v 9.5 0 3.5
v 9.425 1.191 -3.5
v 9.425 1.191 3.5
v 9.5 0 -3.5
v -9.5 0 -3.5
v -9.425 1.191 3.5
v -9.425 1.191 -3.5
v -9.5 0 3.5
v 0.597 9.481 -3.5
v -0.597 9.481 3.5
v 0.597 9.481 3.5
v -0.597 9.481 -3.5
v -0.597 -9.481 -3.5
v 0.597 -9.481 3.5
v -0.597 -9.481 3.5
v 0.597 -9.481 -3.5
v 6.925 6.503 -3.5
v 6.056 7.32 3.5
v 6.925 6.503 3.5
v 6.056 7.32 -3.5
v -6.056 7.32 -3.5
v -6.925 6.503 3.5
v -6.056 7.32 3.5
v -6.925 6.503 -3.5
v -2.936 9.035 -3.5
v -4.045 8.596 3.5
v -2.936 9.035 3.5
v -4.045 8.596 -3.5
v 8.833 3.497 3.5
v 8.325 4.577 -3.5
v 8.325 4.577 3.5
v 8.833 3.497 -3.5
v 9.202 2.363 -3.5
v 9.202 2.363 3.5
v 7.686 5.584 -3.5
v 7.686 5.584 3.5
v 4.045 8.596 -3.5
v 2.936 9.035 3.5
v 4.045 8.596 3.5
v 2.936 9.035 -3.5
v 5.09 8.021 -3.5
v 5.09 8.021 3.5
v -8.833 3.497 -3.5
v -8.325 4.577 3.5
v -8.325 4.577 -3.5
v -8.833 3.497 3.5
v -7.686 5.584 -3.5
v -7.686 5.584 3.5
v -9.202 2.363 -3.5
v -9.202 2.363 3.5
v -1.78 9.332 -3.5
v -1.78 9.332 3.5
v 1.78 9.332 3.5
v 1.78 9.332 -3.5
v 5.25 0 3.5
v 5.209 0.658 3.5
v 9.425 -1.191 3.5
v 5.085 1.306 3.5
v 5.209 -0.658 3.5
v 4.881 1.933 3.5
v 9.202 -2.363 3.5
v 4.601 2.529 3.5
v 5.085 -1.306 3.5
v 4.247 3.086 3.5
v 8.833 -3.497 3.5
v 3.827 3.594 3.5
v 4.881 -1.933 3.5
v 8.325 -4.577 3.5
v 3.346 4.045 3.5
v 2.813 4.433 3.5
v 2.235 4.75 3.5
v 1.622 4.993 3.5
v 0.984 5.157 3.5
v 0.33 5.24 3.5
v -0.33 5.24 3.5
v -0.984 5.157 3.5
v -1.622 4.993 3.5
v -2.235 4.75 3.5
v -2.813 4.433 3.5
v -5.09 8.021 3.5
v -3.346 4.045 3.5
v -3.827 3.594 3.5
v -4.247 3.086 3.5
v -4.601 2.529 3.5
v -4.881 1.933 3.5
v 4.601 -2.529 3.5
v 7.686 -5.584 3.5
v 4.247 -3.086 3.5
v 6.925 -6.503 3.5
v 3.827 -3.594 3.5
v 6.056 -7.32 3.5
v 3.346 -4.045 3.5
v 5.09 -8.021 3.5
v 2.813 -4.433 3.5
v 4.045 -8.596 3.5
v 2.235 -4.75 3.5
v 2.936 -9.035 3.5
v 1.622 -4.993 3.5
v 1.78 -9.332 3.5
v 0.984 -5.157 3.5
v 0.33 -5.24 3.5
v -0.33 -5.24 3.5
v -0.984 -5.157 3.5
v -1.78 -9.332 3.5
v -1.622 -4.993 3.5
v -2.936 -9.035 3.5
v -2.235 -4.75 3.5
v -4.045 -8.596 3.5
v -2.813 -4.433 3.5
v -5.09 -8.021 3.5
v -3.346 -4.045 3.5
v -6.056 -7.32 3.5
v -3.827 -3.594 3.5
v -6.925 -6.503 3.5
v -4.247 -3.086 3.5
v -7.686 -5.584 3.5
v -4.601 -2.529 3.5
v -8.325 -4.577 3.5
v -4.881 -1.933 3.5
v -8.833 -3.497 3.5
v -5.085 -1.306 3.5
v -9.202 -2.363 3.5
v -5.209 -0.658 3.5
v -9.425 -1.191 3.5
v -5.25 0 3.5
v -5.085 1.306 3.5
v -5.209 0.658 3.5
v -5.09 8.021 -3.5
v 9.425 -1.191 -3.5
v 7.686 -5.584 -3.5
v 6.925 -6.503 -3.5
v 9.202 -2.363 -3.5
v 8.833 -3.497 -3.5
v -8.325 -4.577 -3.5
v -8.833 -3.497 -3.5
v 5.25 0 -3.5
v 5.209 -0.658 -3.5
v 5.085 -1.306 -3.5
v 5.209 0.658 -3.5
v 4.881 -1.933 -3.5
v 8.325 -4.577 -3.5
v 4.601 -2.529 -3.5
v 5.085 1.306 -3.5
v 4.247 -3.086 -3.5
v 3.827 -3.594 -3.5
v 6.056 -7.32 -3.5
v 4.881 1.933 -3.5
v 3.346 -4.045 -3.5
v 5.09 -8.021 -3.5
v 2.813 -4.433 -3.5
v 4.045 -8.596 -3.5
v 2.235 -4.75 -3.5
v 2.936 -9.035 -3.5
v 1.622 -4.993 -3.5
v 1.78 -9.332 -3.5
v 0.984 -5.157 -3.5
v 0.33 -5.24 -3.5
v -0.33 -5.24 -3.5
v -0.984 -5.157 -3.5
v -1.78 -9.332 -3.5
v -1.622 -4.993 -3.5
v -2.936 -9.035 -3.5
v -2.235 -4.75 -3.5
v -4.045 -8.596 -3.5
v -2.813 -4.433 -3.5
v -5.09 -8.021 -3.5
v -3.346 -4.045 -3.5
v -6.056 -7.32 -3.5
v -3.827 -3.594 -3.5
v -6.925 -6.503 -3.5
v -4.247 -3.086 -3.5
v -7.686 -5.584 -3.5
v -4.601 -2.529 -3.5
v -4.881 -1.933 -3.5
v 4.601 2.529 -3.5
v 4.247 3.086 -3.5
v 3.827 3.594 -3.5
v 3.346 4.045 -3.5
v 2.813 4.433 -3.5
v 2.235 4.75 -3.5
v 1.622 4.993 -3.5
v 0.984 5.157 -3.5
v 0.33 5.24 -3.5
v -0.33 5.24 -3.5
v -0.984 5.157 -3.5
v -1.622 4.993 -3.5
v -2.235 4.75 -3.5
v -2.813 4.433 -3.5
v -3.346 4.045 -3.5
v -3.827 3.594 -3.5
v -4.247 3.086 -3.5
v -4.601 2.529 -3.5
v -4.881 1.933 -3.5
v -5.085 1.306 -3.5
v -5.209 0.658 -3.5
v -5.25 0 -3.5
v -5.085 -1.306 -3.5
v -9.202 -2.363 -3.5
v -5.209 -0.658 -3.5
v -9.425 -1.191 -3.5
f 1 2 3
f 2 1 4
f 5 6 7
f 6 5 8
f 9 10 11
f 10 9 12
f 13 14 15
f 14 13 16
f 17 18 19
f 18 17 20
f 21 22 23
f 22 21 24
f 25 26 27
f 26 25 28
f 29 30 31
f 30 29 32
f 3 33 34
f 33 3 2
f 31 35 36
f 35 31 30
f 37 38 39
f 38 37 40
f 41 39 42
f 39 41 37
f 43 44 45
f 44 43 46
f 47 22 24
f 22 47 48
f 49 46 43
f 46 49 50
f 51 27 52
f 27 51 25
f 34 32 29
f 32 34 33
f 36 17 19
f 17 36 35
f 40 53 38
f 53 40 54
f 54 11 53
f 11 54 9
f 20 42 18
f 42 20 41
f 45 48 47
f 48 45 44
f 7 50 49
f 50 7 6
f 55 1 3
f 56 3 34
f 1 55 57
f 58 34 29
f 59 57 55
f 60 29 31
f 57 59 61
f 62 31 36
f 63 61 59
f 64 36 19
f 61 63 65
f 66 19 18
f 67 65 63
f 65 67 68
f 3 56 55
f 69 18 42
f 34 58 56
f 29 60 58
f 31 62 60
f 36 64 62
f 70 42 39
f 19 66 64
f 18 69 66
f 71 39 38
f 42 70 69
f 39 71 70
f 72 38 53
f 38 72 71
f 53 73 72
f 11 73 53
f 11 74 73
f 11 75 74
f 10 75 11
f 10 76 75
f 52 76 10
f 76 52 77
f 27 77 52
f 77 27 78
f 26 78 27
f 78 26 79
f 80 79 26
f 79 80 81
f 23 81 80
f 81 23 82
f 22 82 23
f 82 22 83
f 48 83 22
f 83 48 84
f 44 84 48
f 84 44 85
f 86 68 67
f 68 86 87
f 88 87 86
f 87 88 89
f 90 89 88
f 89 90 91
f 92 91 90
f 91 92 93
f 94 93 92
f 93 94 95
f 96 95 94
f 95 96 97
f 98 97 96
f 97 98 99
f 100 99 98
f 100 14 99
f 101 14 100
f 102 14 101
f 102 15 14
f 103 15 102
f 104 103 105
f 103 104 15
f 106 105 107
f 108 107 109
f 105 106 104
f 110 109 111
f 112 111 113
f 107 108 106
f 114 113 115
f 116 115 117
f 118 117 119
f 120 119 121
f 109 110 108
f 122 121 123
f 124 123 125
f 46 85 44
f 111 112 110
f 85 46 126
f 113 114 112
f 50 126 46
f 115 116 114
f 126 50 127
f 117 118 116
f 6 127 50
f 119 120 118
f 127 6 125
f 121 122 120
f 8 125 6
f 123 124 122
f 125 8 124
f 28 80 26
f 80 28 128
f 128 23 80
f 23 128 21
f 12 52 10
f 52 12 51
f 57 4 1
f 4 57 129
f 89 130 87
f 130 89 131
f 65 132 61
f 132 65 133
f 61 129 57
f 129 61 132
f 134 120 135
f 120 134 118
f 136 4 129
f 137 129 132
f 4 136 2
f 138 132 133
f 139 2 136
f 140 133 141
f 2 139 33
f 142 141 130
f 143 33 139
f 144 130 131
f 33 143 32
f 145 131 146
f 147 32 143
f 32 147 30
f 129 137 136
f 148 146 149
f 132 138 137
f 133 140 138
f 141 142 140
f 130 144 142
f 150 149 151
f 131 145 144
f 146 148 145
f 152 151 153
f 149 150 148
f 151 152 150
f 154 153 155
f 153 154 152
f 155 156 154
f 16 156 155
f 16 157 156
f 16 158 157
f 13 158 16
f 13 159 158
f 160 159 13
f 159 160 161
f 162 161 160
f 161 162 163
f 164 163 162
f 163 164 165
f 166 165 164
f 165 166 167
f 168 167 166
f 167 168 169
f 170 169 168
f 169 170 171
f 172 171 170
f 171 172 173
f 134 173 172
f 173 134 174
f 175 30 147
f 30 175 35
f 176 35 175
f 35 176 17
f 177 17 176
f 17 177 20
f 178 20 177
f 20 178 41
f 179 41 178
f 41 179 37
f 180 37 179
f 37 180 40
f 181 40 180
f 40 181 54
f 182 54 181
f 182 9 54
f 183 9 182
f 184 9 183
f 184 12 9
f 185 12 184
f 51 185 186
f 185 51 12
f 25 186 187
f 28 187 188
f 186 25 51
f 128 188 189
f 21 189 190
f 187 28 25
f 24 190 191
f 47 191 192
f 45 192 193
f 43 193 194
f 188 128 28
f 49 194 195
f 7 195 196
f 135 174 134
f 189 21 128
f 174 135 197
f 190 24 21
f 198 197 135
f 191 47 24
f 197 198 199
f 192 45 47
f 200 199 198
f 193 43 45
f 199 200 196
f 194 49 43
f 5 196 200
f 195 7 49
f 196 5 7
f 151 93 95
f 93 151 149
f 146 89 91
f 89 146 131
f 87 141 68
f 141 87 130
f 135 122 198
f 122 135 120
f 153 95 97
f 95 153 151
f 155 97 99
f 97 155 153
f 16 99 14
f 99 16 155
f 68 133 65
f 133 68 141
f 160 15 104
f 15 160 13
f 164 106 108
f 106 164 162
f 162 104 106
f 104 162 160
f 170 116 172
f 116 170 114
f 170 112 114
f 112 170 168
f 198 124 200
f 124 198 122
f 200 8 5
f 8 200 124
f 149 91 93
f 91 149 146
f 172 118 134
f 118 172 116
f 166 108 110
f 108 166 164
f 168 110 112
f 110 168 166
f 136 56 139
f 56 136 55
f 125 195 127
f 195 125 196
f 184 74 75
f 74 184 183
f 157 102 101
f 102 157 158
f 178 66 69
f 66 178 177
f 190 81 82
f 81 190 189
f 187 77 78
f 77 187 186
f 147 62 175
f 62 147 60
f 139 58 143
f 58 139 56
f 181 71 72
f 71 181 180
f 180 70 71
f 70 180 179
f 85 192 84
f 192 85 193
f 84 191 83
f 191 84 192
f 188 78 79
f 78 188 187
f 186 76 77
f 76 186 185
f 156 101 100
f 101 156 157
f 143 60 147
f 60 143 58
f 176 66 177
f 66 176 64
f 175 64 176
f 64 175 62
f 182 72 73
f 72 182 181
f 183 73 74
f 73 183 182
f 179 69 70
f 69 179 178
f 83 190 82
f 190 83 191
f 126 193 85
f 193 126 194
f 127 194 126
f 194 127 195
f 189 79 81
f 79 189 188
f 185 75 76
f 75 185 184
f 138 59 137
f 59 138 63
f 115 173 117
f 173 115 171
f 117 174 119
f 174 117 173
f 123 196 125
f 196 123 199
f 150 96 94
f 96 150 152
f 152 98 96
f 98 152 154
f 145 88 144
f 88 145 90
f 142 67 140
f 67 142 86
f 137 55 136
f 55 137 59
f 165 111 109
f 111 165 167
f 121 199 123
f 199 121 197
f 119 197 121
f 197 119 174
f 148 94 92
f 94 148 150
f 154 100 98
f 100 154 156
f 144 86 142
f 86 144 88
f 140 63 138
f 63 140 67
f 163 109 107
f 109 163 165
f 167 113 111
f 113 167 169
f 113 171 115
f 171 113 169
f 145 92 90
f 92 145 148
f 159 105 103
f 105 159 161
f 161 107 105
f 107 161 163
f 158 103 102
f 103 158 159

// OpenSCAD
$fn = 50;


difference() {
	union() {
		translate(v = [0, 0, -3.5000000000]) {
			cylinder(h = 7, r = 9.5000000000);
		}
	}
	union() {
		translate(v = [0, 0, -100.0000000000]) {
			cylinder(h = 200, r = 5.2500000000);
		}
	}
}
